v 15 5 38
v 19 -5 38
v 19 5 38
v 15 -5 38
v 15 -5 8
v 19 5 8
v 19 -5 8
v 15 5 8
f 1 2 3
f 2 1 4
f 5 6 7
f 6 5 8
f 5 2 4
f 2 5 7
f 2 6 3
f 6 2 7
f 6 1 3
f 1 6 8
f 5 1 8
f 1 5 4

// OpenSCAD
// Top extention which the Y axis servo will move to rotate the gyro
translate([15,-5,8])
    cube([4, 10, 30]);
